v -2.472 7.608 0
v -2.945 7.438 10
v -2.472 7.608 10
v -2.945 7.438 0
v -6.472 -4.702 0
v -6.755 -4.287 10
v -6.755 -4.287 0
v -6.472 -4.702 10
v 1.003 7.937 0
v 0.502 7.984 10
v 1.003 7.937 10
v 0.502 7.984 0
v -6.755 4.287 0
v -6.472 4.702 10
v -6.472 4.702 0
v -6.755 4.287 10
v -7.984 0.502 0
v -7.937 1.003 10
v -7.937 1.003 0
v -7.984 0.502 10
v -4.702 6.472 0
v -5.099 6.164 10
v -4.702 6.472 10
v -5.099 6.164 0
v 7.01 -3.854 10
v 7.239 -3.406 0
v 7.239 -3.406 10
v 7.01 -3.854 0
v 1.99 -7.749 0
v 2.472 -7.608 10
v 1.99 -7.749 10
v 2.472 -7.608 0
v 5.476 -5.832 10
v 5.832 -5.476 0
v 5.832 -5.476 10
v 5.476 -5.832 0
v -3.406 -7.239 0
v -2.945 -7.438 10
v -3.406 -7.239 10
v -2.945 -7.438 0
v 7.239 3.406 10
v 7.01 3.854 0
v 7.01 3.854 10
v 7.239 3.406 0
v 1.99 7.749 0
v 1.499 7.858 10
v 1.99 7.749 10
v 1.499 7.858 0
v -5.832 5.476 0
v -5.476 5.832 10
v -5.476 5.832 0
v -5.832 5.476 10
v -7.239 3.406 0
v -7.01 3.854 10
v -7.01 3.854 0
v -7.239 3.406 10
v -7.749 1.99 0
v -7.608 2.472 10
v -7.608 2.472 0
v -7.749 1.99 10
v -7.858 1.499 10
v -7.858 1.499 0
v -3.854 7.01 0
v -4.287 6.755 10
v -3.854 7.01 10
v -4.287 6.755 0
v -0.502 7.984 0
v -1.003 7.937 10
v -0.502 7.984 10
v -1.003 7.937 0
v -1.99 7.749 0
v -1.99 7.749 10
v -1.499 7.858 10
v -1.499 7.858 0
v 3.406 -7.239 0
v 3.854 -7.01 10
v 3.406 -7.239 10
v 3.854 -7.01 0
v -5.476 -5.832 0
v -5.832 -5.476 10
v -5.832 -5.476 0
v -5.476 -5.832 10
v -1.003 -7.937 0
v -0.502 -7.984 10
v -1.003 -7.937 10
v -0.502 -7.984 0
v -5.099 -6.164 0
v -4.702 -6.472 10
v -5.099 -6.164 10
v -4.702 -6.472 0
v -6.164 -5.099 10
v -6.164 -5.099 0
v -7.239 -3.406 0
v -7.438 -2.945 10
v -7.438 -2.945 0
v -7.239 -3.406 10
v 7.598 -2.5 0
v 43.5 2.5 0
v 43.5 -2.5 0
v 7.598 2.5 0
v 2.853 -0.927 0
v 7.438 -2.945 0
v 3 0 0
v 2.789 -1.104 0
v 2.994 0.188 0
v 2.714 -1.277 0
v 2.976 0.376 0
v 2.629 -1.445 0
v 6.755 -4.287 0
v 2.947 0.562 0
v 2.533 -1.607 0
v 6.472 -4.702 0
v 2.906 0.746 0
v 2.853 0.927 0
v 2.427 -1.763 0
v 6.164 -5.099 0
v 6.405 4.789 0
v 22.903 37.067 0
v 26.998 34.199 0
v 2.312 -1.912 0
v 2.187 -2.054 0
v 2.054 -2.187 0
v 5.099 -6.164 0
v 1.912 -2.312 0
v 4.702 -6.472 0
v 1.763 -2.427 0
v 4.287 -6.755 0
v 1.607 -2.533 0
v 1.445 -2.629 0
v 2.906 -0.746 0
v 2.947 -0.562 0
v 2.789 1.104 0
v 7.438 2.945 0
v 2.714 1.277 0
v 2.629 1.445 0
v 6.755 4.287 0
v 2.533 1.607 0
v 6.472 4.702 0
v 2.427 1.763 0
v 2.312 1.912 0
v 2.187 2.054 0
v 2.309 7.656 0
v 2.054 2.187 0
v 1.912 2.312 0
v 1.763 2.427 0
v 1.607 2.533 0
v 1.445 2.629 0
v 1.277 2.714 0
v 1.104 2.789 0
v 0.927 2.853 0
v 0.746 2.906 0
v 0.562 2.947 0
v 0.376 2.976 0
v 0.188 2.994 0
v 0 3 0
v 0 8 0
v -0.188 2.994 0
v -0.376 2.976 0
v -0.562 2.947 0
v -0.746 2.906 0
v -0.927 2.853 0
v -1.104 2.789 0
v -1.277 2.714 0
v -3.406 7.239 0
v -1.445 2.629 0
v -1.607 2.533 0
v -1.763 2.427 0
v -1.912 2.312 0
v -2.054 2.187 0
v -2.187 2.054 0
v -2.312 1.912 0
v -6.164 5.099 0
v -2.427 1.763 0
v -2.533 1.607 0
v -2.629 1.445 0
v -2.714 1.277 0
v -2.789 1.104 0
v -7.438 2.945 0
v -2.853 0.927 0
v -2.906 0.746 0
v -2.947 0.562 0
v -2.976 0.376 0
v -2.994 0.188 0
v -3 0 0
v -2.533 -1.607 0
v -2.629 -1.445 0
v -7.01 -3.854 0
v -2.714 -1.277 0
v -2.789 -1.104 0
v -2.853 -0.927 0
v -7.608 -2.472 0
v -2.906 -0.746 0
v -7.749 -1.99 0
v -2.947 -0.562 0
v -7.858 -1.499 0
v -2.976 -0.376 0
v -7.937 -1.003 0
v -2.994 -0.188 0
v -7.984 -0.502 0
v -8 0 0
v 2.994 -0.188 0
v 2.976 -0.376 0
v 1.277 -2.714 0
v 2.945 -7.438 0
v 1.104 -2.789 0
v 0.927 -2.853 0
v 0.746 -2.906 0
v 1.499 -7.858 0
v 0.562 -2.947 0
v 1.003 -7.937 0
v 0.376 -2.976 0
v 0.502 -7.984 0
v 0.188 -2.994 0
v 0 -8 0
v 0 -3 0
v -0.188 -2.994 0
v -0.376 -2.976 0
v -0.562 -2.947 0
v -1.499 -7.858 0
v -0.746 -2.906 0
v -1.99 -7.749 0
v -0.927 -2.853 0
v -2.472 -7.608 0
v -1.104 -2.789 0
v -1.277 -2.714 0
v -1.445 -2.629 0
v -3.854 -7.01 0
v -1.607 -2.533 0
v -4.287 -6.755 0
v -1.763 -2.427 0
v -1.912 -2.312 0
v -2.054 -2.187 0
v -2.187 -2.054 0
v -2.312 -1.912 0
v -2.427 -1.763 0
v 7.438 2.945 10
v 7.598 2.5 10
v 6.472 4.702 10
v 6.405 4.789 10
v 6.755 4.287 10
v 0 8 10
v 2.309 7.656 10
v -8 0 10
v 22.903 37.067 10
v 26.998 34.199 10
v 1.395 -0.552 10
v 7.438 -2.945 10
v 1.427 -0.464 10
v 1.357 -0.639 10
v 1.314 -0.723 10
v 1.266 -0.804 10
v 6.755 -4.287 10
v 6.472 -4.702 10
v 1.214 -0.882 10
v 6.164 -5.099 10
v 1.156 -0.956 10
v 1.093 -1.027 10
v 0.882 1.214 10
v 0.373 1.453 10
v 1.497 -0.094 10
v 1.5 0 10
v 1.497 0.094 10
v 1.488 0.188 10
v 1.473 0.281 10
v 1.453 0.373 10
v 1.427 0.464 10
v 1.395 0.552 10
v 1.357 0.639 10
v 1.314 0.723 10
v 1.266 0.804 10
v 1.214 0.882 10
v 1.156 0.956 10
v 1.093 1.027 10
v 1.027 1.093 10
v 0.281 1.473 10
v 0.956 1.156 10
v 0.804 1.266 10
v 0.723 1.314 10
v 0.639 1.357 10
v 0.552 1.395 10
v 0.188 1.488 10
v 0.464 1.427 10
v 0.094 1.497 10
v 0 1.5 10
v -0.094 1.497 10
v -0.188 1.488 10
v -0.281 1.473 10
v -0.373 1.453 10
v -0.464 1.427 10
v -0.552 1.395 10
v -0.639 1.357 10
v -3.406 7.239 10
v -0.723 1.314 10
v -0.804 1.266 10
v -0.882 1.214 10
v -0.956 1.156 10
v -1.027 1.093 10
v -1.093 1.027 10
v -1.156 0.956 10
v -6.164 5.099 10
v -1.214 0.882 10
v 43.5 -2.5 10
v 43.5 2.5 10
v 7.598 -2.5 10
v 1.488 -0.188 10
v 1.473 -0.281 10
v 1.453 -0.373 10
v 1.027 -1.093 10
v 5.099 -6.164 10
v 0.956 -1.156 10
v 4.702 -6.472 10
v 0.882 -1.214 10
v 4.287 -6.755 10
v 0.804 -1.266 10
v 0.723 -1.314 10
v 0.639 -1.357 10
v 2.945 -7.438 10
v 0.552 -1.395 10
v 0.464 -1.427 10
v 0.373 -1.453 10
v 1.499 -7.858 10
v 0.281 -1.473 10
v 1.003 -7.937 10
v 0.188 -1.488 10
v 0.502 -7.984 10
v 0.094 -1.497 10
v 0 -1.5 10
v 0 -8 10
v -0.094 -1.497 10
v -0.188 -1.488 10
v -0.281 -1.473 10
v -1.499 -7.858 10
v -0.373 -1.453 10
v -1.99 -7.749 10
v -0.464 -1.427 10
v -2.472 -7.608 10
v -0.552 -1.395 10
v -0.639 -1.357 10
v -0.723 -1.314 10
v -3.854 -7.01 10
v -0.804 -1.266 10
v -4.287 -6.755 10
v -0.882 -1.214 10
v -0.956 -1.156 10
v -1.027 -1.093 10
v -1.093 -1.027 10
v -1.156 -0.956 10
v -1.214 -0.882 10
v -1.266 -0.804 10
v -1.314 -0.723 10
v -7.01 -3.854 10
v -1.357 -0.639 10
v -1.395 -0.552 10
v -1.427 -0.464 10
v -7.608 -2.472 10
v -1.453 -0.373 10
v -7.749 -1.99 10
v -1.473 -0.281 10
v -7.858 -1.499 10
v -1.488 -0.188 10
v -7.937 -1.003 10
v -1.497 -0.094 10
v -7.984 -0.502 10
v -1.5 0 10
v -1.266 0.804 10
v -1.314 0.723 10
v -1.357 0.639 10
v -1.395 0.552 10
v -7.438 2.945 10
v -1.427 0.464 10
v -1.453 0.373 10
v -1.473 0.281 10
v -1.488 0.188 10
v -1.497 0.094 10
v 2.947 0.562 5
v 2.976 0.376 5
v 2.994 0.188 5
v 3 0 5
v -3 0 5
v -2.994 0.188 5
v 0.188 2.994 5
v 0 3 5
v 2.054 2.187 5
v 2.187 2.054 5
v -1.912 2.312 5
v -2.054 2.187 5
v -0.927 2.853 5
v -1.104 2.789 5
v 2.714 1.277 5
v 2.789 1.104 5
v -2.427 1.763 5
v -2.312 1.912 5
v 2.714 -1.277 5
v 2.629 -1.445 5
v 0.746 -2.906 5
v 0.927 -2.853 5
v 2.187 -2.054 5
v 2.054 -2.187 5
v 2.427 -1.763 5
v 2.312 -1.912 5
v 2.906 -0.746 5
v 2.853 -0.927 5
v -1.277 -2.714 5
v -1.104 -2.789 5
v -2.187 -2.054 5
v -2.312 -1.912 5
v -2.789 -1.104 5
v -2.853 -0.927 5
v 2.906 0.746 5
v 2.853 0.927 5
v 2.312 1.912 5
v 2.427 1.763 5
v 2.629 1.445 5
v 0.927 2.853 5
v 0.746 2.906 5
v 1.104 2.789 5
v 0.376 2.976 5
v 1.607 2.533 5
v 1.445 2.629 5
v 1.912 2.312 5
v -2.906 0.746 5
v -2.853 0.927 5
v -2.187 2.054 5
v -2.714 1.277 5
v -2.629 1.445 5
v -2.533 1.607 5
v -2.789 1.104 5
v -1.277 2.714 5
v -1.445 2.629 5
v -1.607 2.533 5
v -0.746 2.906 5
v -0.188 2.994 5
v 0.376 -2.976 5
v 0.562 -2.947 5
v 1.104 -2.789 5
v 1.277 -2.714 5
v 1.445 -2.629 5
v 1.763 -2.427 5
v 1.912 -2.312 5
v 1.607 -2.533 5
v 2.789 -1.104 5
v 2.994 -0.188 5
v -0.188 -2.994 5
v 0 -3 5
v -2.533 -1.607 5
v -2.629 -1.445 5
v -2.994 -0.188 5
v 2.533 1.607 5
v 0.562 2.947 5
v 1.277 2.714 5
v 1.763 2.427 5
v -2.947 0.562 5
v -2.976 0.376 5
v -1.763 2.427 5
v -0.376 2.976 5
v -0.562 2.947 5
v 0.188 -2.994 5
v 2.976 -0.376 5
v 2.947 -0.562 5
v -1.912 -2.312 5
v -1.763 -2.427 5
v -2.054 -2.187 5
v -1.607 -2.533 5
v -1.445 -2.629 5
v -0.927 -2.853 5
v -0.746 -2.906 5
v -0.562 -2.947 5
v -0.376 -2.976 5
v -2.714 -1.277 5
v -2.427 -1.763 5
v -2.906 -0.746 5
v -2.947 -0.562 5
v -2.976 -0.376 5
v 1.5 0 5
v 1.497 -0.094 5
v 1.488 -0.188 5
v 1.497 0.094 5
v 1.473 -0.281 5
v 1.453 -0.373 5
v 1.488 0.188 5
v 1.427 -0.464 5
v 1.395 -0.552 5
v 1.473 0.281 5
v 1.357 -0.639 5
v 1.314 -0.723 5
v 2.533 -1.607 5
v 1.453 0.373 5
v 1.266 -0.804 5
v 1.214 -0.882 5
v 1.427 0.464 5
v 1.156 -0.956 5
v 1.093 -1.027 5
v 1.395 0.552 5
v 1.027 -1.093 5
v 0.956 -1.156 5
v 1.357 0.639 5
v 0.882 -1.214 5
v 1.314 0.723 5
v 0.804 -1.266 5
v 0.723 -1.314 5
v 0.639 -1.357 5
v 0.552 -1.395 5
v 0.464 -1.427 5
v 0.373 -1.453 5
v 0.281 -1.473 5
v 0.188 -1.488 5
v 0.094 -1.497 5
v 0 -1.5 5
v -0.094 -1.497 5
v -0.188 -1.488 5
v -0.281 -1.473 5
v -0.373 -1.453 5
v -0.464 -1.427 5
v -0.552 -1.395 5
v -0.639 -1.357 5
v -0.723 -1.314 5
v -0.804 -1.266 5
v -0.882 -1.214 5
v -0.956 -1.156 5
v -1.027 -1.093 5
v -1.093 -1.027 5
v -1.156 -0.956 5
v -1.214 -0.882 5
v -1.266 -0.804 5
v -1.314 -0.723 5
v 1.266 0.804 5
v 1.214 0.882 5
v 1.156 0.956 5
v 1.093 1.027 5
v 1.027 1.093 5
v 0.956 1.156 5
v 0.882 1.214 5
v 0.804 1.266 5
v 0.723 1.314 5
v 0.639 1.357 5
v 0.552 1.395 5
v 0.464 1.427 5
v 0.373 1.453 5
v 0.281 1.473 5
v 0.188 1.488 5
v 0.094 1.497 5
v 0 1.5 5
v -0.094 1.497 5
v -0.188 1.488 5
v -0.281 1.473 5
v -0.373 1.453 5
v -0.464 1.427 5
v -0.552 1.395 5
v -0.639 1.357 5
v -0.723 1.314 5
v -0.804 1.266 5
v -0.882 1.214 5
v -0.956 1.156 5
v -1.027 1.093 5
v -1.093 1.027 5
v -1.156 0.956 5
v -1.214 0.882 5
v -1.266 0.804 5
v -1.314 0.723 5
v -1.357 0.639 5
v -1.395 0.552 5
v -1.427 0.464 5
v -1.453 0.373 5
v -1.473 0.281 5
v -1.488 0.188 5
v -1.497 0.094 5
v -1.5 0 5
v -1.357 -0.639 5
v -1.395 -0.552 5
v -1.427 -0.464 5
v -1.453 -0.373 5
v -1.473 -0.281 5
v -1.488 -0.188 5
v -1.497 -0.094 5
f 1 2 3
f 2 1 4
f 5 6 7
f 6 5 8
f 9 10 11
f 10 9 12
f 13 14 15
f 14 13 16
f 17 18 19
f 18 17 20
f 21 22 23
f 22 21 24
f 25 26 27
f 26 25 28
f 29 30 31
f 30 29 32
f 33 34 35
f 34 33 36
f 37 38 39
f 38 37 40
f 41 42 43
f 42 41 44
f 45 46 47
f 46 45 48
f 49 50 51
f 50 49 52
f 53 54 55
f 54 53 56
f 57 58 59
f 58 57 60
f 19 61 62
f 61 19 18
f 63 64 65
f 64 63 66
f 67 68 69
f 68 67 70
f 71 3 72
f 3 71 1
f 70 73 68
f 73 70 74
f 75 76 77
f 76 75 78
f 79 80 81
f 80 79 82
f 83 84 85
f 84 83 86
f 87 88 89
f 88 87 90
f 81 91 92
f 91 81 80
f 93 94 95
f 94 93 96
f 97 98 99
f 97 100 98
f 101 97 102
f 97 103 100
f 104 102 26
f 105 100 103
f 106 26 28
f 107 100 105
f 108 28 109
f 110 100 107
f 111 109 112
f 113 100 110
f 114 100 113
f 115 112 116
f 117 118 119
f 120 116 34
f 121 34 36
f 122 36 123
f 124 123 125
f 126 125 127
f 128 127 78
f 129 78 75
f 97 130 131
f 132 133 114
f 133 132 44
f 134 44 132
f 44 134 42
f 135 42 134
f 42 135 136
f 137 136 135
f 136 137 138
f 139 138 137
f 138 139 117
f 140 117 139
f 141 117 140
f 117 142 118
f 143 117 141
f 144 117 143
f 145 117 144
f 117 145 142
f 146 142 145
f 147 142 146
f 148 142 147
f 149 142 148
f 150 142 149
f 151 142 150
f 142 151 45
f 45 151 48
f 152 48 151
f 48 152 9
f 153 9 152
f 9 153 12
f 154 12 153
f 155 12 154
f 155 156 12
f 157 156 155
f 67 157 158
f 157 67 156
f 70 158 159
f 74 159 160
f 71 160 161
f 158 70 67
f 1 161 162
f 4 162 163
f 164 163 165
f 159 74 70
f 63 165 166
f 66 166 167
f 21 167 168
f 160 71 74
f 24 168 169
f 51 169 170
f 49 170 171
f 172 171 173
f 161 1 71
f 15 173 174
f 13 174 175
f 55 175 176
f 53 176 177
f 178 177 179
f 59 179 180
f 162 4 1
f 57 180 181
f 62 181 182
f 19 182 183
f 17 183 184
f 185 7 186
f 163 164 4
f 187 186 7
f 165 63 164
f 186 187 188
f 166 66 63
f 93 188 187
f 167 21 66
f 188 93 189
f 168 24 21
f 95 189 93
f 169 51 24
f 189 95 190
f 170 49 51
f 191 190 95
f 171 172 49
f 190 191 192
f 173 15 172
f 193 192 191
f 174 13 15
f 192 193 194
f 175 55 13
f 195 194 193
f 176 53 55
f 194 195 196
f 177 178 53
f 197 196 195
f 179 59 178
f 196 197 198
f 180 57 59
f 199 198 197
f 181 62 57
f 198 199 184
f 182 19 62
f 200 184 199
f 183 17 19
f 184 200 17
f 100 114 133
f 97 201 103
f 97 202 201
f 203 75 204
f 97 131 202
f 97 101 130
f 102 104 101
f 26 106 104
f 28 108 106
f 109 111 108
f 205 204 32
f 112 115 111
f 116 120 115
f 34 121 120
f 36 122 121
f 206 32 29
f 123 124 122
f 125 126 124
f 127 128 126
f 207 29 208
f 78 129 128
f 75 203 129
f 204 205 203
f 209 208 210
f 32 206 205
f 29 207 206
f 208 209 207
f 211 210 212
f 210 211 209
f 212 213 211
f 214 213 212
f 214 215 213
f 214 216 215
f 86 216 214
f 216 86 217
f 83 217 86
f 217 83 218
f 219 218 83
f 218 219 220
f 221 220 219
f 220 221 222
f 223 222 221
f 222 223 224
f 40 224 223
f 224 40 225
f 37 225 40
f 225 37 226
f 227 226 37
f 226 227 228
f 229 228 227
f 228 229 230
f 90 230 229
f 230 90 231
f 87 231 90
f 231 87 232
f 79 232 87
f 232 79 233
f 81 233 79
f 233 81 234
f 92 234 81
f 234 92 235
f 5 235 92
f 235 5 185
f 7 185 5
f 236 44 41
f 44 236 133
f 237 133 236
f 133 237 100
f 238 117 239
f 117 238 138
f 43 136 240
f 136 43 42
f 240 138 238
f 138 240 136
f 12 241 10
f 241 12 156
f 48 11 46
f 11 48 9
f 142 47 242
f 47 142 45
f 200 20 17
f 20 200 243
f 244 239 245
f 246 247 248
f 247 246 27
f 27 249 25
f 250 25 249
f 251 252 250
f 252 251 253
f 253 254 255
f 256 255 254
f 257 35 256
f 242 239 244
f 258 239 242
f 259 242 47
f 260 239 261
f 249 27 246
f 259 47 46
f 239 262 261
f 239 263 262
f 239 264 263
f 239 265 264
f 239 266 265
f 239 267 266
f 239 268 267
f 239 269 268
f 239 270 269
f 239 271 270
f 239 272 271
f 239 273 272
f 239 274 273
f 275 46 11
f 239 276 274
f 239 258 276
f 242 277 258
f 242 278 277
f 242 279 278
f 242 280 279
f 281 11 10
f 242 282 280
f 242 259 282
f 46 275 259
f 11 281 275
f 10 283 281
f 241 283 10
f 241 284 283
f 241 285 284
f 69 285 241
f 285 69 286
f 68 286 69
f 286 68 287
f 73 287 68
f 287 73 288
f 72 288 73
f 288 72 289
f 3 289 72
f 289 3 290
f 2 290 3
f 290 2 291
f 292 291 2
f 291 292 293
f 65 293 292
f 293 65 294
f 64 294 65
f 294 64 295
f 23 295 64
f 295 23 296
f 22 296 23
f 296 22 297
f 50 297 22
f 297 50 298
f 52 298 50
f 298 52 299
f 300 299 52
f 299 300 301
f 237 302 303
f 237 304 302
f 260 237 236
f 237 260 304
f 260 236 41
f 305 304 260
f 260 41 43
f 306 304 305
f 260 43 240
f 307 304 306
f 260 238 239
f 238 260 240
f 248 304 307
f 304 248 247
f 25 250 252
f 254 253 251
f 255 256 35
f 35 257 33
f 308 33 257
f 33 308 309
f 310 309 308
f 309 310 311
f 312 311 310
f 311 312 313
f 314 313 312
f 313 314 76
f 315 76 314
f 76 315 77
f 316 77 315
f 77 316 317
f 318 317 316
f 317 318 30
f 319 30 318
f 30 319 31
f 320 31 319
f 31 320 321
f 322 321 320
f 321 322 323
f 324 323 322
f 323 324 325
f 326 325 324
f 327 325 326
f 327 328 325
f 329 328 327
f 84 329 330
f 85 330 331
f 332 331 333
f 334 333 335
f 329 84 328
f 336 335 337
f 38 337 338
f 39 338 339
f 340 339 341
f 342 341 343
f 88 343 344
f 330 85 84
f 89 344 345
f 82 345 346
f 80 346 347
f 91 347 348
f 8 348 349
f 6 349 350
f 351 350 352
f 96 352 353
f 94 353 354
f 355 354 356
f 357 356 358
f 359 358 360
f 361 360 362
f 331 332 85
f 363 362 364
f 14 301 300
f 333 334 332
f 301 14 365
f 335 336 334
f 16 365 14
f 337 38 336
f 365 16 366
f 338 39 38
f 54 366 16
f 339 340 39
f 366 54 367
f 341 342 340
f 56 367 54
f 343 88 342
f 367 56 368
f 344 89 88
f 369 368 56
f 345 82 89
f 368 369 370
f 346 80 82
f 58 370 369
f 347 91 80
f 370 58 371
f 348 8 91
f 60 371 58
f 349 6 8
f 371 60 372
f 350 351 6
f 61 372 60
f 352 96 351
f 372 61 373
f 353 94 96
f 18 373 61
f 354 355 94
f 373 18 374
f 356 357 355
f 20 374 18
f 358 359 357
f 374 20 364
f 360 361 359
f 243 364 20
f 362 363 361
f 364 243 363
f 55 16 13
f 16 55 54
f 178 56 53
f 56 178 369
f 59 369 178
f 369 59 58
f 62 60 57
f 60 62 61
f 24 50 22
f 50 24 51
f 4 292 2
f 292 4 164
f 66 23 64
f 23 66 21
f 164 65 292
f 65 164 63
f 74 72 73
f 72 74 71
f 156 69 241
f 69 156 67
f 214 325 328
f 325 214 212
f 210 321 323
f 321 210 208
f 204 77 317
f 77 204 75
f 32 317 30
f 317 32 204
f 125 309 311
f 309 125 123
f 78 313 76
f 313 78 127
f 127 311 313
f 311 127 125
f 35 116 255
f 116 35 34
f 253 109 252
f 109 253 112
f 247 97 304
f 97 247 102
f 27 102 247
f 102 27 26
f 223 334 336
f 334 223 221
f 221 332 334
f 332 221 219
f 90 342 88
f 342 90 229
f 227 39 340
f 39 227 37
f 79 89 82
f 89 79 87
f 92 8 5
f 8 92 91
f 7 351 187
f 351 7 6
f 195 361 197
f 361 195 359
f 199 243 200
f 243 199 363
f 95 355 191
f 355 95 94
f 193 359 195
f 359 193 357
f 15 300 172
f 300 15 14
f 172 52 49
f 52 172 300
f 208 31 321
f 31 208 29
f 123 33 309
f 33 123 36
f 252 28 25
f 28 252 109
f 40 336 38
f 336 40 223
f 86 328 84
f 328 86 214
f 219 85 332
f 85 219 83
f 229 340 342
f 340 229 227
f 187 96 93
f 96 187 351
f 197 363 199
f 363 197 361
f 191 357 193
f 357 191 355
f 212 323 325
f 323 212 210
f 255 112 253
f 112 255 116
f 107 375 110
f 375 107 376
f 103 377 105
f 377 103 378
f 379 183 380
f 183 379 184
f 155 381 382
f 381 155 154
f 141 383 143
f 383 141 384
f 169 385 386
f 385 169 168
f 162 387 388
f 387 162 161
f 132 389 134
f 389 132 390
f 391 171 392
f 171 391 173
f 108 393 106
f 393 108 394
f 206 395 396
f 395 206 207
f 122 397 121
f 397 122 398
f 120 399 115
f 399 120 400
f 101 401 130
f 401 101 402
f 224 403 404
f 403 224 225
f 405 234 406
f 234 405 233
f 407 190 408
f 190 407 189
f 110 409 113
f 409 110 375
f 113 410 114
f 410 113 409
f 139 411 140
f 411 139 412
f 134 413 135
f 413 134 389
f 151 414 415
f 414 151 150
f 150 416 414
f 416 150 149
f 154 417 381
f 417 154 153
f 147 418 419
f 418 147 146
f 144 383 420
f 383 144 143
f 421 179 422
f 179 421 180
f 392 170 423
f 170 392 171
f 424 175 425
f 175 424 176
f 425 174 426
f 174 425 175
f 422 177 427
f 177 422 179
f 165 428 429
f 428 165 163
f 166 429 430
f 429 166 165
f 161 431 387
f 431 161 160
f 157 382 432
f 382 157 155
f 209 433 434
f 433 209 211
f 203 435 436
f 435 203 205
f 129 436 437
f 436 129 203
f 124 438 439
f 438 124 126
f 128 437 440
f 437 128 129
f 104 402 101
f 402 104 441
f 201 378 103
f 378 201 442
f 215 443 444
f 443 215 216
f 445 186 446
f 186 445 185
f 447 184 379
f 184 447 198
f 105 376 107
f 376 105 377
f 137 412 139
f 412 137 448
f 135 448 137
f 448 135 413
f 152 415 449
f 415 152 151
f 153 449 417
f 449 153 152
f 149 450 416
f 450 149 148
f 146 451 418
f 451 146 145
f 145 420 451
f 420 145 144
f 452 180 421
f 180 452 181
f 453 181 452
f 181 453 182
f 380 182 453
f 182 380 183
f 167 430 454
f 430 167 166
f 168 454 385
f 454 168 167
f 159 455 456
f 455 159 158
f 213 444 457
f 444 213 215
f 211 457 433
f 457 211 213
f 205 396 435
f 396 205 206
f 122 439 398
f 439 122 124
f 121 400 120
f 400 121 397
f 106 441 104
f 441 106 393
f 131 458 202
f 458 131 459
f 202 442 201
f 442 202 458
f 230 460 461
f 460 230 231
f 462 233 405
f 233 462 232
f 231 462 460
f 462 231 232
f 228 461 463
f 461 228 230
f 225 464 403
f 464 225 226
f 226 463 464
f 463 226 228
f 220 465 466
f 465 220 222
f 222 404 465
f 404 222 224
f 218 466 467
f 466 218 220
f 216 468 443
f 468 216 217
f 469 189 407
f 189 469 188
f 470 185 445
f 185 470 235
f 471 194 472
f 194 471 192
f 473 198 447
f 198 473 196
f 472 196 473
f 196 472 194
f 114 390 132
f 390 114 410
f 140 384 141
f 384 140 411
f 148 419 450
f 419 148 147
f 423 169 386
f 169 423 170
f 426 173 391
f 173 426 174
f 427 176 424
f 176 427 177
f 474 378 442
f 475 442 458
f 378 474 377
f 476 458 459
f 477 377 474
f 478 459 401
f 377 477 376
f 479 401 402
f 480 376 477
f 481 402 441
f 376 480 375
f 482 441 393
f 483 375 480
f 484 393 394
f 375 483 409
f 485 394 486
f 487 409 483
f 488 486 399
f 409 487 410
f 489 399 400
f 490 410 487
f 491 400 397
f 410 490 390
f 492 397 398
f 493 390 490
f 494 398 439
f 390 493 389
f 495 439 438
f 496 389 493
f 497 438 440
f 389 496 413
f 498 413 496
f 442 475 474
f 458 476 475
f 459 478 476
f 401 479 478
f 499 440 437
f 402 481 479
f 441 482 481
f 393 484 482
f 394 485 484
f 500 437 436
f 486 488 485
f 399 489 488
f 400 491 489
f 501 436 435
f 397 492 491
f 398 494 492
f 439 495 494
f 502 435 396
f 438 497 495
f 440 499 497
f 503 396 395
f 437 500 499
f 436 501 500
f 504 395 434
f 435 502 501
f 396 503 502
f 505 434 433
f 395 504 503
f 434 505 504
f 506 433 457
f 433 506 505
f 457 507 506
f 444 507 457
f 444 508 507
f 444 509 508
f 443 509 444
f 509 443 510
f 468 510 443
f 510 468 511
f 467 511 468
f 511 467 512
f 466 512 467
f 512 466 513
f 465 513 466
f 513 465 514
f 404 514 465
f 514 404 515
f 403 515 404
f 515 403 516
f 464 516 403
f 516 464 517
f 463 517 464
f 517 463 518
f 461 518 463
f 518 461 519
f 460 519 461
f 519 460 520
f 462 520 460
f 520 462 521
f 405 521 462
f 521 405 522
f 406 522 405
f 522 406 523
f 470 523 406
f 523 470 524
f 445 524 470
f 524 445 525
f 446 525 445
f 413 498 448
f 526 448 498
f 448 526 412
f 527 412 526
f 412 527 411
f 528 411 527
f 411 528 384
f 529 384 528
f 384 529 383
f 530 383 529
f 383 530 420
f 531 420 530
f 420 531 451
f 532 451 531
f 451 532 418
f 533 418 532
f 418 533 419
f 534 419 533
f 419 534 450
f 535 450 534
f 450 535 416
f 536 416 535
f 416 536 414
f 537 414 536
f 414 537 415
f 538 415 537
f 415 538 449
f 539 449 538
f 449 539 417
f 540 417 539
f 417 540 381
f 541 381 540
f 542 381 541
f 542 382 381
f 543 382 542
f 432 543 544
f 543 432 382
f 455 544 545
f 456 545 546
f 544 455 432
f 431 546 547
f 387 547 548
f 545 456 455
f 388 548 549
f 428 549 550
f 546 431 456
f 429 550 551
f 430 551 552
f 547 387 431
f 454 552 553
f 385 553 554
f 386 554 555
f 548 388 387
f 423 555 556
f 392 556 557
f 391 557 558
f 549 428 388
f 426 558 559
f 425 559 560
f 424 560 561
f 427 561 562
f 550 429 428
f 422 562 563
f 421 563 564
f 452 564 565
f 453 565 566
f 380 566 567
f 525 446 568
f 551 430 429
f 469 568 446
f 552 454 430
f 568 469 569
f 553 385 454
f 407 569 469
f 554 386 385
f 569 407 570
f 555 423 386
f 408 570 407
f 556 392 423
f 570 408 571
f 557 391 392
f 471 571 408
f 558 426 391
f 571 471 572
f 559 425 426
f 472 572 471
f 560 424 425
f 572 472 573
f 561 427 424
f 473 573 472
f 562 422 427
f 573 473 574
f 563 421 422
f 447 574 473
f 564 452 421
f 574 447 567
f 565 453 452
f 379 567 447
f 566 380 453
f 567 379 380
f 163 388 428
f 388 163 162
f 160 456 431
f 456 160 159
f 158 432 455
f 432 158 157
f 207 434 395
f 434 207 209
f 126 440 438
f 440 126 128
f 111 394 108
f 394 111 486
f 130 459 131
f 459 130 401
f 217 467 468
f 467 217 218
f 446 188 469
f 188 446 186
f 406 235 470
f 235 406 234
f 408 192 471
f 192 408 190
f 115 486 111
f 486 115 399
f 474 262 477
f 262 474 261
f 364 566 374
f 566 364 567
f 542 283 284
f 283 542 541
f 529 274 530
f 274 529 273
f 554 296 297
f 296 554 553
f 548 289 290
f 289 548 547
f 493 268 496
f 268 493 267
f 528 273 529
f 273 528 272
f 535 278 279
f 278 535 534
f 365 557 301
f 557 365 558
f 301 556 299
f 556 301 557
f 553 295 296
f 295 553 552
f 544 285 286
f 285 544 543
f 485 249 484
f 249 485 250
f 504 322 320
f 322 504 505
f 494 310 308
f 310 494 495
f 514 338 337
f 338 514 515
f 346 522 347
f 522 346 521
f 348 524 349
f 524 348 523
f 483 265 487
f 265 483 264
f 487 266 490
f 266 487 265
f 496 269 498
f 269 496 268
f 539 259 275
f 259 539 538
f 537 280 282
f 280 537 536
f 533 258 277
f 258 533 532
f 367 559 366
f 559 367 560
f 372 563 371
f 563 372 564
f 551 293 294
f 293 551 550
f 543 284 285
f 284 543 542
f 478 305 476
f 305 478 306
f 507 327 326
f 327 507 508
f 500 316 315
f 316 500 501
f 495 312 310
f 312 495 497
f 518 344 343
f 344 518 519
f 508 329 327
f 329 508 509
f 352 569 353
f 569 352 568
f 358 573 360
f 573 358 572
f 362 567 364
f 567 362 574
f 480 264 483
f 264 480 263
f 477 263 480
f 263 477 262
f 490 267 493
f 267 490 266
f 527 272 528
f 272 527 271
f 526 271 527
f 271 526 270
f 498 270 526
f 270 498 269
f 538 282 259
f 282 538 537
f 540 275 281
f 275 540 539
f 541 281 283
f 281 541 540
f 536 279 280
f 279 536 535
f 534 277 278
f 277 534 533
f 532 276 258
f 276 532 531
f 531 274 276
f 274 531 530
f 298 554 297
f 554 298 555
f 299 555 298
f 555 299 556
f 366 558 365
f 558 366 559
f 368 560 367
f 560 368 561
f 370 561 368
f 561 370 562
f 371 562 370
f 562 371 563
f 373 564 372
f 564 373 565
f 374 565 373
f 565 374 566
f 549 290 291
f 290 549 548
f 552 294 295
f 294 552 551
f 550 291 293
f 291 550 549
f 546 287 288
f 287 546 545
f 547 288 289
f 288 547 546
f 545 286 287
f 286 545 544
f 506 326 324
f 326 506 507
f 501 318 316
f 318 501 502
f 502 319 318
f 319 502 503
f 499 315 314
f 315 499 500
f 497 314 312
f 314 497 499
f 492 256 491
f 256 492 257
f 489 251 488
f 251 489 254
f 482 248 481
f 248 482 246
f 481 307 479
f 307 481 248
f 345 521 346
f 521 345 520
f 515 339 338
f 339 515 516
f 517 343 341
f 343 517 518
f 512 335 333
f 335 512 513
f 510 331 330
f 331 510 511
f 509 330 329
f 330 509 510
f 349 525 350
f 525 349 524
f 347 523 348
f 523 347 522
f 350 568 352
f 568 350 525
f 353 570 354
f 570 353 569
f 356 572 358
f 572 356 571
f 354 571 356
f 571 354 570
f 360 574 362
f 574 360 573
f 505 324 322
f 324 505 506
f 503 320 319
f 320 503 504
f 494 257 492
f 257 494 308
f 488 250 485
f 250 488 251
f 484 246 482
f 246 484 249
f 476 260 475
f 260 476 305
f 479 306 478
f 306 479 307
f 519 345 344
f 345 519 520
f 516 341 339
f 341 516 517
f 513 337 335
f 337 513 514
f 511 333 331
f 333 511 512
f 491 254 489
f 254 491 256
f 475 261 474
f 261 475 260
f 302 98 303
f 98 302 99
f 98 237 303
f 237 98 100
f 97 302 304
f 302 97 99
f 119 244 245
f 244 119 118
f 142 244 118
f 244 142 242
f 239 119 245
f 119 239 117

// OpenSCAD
servoInnerDiameter = 6.0;
extensionLength = 30.0;
screwDiameter = 3;
barWidth = 5;
barAngle = 55;
$fn = 100;
module servoMount(){
    difference(){
        cylinder(d=servoInnerDiameter+10, h=10);
        cylinder(d=servoInnerDiameter, h=5);
        cylinder(d=screwDiameter, h=10);
    }
}


module drawAll(){
    union(){
        servoMount();
        translate([(servoInnerDiameter+1)/2,-barWidth/2,0])cube([extensionLength+10, barWidth, 10]);
        rotate([0,0,barAngle])translate([(servoInnerDiameter+1)/2,-barWidth/2,0])cube([extensionLength+10, barWidth, 10]);
    }
}

drawAll();
